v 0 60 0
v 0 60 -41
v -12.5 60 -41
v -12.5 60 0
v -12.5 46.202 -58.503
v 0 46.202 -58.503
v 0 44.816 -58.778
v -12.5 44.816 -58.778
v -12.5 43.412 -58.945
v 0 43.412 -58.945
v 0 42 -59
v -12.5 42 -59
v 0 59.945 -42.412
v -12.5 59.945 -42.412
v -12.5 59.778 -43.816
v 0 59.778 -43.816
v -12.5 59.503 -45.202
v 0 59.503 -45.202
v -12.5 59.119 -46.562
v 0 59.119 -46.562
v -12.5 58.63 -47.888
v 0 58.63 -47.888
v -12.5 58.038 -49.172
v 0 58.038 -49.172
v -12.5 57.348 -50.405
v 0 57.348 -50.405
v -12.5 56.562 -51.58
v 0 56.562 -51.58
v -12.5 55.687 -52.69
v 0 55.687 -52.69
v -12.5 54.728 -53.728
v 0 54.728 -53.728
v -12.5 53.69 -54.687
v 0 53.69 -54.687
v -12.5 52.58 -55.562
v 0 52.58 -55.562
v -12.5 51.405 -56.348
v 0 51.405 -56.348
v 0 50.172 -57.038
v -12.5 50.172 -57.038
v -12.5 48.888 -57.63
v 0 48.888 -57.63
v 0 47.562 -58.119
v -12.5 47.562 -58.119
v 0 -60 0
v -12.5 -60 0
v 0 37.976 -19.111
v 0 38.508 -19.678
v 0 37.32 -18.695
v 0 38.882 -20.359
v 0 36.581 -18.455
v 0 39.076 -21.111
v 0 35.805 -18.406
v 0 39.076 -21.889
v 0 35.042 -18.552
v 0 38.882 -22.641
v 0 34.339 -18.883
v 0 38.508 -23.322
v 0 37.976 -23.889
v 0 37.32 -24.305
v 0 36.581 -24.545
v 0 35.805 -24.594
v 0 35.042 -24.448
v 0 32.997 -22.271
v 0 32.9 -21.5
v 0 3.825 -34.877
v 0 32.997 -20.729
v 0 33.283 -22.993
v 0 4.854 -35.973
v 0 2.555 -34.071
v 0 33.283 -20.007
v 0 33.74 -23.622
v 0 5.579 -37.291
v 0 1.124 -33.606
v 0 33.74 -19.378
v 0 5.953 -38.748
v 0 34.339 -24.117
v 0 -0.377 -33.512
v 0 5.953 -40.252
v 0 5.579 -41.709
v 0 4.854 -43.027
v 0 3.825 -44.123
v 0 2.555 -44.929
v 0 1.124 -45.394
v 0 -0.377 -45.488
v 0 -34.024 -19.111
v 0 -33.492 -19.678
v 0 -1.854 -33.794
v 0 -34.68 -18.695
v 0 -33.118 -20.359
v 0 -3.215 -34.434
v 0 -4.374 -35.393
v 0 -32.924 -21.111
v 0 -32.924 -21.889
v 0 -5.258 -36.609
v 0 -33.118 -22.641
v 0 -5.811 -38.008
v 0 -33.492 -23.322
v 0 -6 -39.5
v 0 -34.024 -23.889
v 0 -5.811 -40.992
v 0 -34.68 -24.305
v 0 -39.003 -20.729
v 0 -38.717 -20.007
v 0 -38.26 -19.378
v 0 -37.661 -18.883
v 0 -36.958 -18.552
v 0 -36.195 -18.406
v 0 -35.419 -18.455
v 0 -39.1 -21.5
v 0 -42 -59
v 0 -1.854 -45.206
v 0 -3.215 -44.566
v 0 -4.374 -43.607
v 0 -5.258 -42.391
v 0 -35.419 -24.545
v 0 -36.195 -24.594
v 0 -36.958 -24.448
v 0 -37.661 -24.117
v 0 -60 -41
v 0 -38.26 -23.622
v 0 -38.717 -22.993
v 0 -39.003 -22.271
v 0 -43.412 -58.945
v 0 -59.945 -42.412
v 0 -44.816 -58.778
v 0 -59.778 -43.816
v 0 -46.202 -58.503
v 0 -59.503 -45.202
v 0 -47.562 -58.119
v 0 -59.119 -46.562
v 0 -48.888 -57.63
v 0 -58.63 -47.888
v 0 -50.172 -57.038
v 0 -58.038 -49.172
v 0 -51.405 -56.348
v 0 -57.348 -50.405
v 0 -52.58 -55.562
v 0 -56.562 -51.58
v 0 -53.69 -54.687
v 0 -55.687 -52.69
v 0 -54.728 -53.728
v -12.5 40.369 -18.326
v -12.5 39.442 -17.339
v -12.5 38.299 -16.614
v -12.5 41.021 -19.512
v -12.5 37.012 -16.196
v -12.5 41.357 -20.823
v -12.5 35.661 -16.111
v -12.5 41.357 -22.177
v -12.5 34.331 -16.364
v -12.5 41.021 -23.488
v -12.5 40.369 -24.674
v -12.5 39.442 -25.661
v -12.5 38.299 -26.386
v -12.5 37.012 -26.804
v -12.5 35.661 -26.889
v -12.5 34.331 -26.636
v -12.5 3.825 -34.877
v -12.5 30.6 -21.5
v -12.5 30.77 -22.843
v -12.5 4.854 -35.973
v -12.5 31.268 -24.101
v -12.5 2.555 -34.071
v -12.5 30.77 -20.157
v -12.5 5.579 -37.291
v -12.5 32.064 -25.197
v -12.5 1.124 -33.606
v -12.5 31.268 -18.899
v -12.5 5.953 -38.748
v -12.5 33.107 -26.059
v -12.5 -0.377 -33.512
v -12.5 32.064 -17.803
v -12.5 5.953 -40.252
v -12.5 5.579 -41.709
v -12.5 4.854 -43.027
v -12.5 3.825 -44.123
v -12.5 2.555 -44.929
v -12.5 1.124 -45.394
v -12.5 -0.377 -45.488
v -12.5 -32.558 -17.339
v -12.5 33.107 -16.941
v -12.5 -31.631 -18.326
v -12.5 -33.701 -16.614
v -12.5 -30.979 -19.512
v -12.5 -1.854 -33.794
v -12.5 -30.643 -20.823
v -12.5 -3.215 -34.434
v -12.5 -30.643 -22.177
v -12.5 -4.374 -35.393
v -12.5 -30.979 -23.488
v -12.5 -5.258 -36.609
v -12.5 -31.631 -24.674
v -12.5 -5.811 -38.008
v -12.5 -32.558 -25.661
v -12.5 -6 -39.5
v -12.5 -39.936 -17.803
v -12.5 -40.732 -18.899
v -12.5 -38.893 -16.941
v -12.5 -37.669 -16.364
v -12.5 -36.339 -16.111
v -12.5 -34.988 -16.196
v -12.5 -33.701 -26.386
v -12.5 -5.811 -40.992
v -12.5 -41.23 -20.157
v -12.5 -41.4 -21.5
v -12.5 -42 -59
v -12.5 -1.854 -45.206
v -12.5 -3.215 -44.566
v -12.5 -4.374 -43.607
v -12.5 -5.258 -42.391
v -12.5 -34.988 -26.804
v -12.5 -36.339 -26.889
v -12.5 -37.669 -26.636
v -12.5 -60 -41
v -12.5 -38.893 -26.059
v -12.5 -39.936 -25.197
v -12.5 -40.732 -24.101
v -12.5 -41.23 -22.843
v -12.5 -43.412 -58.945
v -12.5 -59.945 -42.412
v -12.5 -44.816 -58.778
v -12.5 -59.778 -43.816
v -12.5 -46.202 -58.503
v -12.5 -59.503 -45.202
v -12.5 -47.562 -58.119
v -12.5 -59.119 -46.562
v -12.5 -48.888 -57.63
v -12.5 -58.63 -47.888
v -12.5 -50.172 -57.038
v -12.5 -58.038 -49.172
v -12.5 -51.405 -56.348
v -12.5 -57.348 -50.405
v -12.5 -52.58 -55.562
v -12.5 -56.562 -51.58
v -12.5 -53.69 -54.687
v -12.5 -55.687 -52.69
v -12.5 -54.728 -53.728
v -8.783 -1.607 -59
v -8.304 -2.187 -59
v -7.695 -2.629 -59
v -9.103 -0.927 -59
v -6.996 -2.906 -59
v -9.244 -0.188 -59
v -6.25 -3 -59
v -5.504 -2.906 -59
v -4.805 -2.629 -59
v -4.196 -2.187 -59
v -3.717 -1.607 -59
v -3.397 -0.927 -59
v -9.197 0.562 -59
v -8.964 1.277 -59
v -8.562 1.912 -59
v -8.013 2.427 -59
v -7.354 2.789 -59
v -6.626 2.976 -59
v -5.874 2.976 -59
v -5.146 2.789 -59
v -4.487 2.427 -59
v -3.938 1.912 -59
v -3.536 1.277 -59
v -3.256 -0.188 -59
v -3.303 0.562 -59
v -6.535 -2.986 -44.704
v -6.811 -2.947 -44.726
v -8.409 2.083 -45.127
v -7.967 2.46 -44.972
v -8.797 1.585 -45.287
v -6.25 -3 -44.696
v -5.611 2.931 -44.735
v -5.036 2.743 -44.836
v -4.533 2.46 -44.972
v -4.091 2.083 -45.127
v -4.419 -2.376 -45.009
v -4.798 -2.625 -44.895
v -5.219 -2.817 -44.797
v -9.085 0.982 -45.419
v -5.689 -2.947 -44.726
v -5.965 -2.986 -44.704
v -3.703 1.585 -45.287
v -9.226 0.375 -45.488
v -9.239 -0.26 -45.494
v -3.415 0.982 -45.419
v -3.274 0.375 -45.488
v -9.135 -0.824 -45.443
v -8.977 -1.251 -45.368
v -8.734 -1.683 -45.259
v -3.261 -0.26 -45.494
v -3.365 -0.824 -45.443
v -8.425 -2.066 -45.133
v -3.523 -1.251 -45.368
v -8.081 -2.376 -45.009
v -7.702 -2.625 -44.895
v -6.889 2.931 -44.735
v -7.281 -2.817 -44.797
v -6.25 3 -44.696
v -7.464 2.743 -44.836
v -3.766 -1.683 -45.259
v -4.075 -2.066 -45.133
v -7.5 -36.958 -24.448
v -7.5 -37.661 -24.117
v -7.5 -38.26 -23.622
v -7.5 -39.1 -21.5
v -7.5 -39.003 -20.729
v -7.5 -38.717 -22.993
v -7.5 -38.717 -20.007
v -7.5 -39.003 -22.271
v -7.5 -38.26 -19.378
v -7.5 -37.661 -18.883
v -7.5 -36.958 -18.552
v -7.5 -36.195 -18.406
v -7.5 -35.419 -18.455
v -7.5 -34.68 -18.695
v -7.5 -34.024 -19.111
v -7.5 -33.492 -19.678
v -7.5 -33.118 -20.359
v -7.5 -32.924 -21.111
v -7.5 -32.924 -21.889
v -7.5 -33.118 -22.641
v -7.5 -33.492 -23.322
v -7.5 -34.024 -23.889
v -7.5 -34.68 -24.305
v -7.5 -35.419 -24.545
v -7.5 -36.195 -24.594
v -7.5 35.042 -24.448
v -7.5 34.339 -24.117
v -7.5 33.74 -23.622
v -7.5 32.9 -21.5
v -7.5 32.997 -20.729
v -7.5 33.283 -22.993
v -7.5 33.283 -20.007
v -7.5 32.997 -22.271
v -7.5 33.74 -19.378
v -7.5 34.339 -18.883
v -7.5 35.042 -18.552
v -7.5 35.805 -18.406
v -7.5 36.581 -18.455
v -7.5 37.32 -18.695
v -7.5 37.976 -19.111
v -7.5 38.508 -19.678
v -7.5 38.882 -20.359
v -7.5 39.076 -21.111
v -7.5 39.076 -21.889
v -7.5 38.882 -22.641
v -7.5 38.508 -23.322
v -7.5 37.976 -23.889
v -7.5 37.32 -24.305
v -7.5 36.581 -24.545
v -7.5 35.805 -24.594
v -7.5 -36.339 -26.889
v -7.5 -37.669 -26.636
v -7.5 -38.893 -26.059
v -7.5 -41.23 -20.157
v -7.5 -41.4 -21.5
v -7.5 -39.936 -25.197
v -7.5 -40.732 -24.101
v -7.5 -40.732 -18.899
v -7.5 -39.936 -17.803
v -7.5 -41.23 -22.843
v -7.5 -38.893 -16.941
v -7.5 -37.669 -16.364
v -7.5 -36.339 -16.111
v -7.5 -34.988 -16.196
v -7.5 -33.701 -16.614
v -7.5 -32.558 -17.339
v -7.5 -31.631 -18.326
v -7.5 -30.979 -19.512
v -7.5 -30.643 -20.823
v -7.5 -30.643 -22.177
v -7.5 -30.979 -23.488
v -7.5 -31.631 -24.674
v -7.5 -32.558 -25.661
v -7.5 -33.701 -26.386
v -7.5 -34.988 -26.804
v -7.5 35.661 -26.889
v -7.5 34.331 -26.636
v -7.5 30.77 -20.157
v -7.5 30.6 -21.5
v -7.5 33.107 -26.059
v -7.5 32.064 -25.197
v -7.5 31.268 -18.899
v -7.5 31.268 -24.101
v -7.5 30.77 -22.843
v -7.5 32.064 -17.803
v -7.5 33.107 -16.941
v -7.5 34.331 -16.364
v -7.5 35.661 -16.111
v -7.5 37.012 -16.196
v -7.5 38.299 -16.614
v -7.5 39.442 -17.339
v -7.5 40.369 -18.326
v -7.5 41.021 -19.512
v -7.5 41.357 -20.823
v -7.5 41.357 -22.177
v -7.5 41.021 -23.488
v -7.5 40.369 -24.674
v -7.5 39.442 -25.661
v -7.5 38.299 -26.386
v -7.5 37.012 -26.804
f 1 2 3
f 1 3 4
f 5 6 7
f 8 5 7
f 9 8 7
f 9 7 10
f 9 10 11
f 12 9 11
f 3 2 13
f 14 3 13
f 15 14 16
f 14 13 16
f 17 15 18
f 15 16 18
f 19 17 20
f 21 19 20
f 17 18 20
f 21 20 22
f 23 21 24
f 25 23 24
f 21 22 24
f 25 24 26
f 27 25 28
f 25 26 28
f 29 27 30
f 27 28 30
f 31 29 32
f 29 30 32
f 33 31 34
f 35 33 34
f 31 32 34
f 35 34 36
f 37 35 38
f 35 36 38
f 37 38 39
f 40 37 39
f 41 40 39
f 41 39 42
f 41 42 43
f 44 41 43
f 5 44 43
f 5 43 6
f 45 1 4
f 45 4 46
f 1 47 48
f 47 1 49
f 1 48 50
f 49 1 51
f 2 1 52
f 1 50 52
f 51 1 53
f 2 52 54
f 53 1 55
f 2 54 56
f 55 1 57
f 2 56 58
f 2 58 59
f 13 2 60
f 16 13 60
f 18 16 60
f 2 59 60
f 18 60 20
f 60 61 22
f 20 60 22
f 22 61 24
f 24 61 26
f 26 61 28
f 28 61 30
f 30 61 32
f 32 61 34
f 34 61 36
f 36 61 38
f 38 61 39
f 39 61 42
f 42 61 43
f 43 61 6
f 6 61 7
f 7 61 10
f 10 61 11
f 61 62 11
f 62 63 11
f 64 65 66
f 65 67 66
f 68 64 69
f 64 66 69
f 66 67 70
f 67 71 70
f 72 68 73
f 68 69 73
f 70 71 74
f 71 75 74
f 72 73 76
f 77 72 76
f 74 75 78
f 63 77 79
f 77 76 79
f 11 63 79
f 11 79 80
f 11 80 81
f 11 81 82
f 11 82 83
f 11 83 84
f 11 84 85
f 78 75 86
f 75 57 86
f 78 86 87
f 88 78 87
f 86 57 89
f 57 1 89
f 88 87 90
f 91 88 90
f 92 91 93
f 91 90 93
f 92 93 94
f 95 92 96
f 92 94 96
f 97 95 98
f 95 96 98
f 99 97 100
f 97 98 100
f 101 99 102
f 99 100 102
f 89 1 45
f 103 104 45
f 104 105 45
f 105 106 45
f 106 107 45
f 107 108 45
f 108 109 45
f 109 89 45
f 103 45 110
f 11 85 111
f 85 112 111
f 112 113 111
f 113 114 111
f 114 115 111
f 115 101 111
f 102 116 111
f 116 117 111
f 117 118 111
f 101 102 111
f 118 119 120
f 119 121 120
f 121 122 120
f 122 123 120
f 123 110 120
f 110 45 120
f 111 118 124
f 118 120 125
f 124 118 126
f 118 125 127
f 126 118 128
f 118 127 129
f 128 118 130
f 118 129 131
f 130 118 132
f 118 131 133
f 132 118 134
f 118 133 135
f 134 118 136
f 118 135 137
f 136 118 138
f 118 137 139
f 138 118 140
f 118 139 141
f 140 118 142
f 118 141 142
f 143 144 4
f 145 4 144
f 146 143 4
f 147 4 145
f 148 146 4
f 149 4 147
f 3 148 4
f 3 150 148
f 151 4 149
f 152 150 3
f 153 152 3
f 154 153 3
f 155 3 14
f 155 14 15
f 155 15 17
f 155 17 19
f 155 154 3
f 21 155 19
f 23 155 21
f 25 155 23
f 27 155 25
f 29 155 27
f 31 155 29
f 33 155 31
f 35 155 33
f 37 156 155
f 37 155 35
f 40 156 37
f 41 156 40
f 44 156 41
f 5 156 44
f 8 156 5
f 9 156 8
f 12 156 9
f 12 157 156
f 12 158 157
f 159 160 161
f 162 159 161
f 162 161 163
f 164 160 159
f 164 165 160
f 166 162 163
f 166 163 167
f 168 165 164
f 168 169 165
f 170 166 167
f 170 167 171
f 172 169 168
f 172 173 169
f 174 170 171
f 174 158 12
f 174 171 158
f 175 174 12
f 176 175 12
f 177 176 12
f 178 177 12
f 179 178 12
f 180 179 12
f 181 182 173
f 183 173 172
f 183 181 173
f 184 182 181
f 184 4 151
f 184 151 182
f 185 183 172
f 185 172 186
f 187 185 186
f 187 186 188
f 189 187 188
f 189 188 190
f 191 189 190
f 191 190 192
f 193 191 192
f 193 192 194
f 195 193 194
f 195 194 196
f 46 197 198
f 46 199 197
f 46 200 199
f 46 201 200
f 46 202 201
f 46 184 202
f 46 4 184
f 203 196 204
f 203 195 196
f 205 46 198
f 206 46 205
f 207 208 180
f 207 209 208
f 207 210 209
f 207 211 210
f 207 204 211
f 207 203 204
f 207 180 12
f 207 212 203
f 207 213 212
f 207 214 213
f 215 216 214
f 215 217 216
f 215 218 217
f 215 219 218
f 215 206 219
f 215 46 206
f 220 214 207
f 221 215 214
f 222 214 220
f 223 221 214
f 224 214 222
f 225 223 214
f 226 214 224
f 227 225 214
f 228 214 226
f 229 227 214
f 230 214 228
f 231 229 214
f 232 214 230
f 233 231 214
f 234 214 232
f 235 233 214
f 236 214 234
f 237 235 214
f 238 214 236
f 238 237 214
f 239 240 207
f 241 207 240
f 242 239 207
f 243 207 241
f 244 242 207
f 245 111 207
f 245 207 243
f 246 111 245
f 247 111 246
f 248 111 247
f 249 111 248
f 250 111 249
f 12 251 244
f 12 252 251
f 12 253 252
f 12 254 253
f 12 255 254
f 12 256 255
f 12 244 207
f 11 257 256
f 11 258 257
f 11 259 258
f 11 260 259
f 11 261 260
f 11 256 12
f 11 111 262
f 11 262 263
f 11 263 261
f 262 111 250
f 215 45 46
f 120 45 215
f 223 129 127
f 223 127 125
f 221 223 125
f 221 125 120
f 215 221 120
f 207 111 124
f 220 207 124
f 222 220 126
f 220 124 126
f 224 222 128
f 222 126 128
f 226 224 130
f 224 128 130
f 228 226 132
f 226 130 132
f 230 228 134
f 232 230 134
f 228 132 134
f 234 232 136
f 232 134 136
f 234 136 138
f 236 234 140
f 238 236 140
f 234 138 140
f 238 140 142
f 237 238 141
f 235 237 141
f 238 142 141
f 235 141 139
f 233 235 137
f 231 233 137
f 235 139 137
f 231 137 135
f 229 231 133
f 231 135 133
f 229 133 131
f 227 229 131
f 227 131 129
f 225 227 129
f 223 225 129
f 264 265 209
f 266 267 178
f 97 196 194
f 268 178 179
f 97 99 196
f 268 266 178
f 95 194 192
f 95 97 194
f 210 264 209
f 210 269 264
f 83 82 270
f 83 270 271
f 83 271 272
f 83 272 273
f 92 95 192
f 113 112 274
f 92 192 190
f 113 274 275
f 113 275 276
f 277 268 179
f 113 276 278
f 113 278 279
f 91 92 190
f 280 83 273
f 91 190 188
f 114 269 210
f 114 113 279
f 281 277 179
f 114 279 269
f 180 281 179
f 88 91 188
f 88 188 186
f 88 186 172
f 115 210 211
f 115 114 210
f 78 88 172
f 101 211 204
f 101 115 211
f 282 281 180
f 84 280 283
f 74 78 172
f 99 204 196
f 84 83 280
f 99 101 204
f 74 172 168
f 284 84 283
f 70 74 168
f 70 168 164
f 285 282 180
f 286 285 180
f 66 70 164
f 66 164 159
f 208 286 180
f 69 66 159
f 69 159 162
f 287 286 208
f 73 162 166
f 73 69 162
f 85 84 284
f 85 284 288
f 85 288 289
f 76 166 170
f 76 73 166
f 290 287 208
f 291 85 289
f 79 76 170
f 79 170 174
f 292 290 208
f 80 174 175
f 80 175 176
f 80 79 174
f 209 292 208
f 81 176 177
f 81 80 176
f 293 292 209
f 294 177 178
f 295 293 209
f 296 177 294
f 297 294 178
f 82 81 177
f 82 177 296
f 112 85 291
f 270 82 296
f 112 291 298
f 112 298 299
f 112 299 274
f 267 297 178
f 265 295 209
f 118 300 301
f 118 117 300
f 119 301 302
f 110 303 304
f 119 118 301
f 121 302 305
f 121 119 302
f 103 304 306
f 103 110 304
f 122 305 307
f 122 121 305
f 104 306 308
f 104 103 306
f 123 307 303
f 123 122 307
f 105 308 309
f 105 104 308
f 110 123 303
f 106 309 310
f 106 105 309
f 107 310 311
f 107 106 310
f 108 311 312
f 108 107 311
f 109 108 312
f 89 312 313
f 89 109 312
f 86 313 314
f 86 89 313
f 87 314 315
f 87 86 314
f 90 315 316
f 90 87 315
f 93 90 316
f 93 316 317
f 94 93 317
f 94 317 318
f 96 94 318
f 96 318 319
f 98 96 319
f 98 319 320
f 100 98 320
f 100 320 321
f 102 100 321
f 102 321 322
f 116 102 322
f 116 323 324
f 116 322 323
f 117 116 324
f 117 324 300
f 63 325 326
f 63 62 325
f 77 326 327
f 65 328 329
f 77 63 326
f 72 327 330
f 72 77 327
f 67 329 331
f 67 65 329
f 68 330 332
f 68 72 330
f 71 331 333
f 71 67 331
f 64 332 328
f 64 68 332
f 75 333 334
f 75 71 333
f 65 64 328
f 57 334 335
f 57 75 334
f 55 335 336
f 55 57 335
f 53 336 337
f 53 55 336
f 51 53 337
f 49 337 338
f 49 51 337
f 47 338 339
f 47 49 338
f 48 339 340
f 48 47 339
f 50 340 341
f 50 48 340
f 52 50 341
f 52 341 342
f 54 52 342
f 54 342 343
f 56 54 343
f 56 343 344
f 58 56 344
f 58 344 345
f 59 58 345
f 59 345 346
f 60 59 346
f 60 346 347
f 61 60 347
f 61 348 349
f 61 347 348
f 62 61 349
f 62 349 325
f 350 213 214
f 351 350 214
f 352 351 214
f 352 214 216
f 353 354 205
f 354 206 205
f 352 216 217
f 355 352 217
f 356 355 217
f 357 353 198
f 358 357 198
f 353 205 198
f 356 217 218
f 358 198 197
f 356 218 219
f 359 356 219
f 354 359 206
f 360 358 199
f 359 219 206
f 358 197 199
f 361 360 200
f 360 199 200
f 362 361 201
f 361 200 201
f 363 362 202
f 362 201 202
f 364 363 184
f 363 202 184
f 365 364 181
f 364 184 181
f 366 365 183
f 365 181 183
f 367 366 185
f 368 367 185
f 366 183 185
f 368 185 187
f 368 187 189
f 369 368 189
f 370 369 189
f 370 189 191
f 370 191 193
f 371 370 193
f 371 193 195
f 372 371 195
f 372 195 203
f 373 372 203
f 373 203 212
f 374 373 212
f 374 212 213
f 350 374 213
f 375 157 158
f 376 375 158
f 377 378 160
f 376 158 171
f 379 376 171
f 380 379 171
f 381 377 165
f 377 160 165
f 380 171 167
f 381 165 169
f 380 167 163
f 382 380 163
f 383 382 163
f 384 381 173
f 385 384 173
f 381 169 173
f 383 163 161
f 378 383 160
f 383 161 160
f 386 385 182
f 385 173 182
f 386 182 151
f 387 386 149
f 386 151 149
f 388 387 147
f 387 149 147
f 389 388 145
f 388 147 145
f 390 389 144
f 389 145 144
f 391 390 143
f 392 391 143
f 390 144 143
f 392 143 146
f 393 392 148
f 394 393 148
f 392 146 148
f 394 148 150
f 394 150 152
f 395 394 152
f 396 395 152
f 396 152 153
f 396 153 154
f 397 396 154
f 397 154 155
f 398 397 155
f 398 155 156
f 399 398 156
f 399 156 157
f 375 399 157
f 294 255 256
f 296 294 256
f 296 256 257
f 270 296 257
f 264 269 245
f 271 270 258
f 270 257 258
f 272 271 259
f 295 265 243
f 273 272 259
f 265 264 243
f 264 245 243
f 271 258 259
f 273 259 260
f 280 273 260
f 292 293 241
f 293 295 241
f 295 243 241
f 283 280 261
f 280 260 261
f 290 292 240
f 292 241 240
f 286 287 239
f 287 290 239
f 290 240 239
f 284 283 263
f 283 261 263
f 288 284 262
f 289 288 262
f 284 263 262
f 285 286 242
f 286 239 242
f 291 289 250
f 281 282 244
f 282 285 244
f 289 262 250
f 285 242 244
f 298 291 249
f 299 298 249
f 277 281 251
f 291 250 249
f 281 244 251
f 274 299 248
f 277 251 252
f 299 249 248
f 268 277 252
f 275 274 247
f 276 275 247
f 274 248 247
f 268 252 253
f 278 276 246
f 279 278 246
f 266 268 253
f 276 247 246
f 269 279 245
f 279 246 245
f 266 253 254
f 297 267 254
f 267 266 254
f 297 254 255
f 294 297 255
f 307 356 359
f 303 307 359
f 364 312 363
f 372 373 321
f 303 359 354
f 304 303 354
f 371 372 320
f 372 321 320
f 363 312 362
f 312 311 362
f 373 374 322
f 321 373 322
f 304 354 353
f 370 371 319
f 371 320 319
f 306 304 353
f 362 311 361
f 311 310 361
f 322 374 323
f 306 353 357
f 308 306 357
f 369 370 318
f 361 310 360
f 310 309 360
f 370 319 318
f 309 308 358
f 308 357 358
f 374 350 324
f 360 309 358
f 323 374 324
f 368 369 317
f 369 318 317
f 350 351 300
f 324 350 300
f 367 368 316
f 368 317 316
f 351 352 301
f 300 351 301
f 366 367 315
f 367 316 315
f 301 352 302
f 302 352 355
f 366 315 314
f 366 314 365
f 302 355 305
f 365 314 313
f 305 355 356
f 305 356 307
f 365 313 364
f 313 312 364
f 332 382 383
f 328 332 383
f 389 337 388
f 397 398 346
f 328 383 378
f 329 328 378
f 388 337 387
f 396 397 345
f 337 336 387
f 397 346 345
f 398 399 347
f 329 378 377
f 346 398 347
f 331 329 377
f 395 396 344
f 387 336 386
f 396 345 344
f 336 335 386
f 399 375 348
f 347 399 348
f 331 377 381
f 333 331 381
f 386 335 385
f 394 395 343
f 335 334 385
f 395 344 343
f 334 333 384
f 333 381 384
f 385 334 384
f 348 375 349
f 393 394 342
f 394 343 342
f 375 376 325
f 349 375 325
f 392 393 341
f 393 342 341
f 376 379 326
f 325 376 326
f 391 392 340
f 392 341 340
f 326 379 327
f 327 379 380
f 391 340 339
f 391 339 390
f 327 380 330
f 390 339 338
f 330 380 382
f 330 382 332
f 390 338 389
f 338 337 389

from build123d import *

# Parameters (mm, degrees)
SKETCH_R        = 6
SKETCH_R_2      = 3.1
PAD_DEPTH       = 12.5
SKETCH001_R     = 5.4
POCKET_DEPTH    = 5
SKETCH003_R     = 3
POCKET001_DEPTH = 15


with BuildPart() as part:
    # Sketch → Pad (new body)
    with BuildSketch(Plane(origin=(0, 0, 0), x_dir=(0, -1, 0), z_dir=(-1, 0, 0))):
        with BuildLine():
            Line((-60, 0), (60, 0))
            Line((60, 0), (60, -41))
            ThreePointArc((42, -59), (54.727922, -53.727922), (60, -41))
            Line((42, -59), (-42.000001, -59))
            ThreePointArc((-60, -41.000038), (-54.727909, -53.727935), (-42.000001, -59))
            Line((-60, -41.000038), (-60, 0))
        make_face()
        with Locations((0, -39.5)):
            Circle(SKETCH_R, mode=Mode.SUBTRACT)
        with Locations((-36, -21.5)):
            Circle(SKETCH_R_2, mode=Mode.SUBTRACT)
        with Locations((36, -21.5)):
            Circle(SKETCH_R_2, mode=Mode.SUBTRACT)
    extrude(amount=PAD_DEPTH)

    # Sketch001 → Pocket (cut)
    with BuildSketch(Plane(origin=(-12.5, 0, 0), x_dir=(0, -1, 0), z_dir=(-1, 0, 0))):
        with Locations((-36, -21.5)):
            Circle(SKETCH001_R)
        with Locations((36, -21.5)):
            Circle(SKETCH001_R)
    extrude(amount=-POCKET_DEPTH, mode=Mode.SUBTRACT)

    # Sketch003 → Pocket001 (cut)
    with BuildSketch(Plane(origin=(0, 0, -59), x_dir=(0, -1, 0), z_dir=(0, 0, -1))):
        with Locations((0, 6.25)):
            Circle(SKETCH003_R)
    extrude(amount=-POCKET001_DEPTH, mode=Mode.SUBTRACT)


solid = part.part
